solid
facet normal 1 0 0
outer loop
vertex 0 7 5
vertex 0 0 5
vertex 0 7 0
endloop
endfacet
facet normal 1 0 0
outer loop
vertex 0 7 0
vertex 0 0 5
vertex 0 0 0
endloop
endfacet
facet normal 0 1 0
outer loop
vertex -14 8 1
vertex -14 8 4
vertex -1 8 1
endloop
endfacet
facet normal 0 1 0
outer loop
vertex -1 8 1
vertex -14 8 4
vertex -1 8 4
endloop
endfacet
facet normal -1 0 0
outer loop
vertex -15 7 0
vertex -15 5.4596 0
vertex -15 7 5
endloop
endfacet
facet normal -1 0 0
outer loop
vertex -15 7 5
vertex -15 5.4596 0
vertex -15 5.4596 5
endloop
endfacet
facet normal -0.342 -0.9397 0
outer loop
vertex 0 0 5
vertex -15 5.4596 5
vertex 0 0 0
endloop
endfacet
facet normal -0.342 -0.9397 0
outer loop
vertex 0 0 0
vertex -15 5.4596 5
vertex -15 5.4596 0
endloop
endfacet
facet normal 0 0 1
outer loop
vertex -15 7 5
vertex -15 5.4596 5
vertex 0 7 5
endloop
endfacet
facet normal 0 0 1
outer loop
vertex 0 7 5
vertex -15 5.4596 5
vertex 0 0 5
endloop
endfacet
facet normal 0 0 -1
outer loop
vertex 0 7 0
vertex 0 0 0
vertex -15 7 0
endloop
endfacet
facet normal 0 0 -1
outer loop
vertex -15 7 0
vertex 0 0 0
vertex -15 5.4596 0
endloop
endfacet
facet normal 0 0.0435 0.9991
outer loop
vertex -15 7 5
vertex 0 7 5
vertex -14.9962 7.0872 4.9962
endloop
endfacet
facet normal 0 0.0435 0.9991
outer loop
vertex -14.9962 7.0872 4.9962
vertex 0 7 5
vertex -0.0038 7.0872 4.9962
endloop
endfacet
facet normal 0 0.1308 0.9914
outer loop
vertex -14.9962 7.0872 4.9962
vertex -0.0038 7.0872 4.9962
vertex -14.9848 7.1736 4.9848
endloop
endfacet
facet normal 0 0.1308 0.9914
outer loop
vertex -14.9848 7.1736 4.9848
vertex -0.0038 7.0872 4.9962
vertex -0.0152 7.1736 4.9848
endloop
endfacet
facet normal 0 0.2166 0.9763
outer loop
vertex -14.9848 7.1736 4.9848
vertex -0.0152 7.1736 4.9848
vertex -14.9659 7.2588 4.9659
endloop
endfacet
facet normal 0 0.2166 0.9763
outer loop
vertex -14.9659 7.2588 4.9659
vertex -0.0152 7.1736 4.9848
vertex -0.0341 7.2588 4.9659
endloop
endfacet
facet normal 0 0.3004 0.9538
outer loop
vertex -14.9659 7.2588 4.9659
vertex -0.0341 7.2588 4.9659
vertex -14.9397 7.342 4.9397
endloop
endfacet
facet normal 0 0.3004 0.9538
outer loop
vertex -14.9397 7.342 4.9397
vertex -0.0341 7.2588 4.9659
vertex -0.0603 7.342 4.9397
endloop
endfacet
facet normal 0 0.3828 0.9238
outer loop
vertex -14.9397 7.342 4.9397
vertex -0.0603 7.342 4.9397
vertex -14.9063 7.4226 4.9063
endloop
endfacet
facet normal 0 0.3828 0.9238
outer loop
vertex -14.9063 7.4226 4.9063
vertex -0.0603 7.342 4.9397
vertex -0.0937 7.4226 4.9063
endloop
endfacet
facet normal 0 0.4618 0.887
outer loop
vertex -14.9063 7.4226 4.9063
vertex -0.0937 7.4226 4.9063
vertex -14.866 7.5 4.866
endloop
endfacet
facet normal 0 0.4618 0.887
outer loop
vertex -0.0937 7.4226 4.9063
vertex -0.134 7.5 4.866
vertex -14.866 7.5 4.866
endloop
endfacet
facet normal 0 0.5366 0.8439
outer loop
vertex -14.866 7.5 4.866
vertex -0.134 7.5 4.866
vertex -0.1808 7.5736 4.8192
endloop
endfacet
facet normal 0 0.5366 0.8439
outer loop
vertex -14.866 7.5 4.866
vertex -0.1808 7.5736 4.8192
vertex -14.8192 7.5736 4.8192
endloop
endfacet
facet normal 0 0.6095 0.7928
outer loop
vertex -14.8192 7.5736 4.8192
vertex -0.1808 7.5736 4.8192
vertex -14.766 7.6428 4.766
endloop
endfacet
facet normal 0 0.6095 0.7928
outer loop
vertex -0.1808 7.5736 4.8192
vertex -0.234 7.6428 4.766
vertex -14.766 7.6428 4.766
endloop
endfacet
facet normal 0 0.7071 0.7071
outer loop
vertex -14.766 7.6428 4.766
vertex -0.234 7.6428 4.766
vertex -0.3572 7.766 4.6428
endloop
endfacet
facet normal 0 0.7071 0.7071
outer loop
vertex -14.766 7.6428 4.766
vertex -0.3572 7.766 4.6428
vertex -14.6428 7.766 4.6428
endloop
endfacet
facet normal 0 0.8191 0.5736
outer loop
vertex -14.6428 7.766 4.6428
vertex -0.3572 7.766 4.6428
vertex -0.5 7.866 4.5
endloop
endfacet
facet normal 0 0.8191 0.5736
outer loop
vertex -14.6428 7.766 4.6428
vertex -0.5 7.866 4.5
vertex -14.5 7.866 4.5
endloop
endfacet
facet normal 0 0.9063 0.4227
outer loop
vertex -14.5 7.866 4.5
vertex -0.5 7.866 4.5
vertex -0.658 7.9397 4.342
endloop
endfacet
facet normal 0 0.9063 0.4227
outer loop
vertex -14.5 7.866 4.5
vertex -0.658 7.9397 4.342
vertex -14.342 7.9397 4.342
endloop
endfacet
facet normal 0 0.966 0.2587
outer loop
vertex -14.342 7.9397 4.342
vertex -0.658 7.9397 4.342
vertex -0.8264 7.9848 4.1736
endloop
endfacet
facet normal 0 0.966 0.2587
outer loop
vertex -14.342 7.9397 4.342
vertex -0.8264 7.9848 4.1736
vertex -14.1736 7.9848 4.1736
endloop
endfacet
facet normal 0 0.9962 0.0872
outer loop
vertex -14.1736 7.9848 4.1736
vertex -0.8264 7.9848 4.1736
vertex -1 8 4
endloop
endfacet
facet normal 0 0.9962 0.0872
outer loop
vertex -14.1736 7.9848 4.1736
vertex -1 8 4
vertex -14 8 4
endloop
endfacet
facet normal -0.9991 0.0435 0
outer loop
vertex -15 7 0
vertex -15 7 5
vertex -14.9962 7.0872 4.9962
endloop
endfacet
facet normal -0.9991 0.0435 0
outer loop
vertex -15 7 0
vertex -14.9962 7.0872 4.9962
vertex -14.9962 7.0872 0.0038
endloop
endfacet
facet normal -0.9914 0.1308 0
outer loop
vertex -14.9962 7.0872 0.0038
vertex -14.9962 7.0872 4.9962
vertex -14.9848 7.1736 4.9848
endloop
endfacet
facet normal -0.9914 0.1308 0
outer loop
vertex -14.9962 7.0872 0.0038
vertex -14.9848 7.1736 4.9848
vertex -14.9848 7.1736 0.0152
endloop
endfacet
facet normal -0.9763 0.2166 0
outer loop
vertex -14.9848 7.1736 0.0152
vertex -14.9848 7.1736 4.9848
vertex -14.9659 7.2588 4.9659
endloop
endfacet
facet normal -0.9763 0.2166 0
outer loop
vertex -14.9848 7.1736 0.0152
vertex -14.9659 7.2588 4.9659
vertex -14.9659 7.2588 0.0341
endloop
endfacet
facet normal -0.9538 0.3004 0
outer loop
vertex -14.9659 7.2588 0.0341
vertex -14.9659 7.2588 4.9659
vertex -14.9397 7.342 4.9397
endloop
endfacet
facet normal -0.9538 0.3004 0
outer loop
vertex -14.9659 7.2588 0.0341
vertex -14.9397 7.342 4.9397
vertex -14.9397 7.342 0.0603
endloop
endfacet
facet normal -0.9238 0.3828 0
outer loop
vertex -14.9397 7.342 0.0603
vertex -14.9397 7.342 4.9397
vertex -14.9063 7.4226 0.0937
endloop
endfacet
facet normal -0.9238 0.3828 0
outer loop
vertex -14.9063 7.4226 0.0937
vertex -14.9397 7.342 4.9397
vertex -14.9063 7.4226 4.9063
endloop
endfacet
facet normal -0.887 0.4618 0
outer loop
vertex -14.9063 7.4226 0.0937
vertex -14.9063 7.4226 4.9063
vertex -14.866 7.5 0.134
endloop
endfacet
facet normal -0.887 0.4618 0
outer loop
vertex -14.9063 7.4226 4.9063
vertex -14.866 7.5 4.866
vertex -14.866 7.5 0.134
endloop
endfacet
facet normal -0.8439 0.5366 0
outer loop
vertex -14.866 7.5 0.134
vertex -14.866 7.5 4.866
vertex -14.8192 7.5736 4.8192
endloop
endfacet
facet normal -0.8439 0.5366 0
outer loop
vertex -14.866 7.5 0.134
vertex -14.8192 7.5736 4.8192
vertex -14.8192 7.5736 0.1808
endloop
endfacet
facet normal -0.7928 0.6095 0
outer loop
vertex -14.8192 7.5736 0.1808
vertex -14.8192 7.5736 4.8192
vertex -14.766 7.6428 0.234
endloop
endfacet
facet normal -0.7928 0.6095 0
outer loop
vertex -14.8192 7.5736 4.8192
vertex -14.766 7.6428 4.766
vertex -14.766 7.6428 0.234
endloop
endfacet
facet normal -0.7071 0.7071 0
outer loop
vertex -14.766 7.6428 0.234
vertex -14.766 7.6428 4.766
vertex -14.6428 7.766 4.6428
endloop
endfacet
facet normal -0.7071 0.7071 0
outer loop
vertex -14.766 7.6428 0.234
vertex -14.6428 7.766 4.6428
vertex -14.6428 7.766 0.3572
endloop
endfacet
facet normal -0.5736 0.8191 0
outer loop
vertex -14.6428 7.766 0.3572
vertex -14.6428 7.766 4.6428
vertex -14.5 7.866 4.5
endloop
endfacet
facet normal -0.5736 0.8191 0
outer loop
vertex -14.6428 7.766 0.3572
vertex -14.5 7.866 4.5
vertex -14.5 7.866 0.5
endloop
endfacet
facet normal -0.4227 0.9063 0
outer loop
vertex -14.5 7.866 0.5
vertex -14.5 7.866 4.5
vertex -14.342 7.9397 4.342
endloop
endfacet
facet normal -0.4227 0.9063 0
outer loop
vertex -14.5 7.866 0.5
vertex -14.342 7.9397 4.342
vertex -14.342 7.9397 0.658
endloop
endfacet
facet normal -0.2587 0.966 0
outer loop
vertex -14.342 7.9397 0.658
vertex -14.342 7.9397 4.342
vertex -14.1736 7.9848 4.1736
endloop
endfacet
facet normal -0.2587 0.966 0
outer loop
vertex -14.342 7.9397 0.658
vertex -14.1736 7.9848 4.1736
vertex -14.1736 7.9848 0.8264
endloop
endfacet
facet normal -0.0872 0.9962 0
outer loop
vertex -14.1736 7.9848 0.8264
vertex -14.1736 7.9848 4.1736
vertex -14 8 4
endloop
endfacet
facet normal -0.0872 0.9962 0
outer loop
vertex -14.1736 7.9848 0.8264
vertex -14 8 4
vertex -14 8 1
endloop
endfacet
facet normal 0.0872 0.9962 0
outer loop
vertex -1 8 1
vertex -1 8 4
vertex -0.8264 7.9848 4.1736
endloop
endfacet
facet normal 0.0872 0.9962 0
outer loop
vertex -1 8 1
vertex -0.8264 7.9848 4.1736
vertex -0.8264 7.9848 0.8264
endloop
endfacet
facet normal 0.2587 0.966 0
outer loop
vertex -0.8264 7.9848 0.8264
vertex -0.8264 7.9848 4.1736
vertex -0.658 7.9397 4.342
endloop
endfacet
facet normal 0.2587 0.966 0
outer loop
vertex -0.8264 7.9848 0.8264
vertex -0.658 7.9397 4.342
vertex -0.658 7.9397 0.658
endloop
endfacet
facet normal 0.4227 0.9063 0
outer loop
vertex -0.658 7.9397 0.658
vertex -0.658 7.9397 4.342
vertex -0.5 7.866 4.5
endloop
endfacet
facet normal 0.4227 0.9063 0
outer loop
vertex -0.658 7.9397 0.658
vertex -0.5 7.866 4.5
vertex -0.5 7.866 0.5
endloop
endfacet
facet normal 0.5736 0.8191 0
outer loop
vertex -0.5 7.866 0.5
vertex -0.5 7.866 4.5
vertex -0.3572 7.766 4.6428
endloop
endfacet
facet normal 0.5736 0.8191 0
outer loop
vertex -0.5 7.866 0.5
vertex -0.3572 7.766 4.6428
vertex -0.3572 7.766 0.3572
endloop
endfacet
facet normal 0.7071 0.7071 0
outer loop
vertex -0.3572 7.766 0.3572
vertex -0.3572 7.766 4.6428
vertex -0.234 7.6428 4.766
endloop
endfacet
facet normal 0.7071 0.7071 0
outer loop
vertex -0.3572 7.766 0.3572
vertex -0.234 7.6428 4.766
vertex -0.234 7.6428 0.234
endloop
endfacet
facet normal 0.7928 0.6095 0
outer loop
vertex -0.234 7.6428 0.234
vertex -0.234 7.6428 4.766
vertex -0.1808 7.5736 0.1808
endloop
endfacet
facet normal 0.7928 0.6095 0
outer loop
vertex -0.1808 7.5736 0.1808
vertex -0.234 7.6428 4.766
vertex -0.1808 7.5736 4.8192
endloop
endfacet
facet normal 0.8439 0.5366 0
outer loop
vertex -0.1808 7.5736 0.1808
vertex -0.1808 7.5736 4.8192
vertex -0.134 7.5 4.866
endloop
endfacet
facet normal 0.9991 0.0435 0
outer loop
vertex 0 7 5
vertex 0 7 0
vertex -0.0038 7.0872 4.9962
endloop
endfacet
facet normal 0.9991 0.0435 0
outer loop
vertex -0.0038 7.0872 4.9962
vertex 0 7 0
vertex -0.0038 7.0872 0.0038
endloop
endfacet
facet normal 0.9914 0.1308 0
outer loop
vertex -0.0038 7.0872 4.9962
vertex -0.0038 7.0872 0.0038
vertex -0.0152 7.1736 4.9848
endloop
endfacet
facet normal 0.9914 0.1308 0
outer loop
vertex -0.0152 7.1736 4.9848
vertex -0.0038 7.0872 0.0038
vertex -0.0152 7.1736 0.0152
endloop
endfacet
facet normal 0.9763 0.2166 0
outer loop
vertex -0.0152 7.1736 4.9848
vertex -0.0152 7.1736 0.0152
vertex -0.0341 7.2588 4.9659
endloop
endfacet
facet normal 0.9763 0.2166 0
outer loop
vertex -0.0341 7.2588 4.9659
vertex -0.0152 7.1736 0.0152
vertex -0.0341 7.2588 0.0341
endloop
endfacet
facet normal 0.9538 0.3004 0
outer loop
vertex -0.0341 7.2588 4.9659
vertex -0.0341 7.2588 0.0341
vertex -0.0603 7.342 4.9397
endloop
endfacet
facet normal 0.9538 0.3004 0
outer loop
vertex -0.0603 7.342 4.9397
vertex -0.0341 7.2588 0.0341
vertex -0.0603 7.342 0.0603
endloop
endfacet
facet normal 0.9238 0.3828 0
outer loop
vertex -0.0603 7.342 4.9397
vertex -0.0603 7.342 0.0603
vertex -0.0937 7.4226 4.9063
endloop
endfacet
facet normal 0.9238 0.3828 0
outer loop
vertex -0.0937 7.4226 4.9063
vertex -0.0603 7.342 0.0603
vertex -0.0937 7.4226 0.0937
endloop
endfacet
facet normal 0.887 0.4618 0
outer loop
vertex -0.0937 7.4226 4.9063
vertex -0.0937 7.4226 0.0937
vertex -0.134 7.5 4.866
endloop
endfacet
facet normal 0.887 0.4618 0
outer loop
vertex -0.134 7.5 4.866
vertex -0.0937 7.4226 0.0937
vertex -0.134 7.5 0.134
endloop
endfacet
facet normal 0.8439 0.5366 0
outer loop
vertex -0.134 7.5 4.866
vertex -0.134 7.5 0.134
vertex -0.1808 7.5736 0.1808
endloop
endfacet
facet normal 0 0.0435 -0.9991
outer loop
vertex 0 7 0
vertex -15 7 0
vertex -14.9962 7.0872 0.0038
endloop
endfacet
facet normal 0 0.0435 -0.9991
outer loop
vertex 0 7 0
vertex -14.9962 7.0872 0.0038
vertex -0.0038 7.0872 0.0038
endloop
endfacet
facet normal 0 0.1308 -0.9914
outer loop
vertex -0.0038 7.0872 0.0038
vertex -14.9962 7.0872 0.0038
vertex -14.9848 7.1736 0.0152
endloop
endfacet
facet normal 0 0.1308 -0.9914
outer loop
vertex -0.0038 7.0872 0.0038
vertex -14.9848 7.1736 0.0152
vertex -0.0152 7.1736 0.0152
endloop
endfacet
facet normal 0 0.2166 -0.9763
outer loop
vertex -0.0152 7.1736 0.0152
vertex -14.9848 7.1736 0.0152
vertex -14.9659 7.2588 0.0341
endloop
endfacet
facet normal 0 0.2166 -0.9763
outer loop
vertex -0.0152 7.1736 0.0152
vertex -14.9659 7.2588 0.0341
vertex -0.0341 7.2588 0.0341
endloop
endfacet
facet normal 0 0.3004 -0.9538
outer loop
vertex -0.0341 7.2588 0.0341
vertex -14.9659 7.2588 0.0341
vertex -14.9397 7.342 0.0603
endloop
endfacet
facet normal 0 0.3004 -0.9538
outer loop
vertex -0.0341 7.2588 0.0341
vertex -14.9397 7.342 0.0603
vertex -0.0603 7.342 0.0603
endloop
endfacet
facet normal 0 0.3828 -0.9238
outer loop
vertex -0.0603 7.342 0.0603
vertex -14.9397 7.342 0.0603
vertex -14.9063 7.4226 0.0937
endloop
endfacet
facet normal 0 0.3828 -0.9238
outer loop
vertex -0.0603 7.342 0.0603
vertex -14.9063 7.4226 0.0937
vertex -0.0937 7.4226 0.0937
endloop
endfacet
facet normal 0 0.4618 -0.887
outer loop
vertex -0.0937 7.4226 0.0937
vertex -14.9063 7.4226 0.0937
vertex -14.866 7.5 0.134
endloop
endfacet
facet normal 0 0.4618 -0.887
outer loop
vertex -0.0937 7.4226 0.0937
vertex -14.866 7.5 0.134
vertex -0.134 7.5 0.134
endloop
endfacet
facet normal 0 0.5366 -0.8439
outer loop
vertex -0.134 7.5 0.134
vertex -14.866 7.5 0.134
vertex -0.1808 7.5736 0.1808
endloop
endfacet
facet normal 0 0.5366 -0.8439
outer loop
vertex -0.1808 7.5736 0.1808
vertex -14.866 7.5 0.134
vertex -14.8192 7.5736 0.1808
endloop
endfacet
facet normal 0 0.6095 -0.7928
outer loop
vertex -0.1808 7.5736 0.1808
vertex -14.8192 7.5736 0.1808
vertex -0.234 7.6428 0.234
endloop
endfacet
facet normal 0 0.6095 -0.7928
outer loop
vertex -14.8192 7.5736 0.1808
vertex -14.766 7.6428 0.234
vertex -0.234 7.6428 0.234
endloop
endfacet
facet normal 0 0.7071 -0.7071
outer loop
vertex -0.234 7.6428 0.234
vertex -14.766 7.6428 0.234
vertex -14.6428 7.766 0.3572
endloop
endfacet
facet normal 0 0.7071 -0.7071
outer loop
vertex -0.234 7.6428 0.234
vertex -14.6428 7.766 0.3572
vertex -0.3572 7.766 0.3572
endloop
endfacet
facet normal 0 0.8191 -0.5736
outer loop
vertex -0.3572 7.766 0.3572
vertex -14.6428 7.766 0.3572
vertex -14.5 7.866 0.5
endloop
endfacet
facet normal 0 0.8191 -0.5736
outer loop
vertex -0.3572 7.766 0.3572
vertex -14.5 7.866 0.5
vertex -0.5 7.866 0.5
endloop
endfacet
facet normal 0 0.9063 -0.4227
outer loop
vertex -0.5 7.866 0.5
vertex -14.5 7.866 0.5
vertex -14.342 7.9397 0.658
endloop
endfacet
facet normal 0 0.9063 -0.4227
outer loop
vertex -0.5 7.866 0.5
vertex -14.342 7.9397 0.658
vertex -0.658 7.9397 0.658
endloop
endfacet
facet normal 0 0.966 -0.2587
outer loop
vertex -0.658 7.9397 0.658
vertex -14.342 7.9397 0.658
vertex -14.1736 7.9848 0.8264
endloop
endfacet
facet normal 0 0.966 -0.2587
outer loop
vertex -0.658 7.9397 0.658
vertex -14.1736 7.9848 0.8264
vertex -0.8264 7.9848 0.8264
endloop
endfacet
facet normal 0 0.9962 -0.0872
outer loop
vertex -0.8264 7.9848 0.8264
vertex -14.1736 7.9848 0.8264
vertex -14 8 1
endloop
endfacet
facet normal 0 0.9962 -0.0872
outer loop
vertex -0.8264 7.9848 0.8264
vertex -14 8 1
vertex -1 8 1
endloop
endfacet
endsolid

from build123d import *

# Parameters (mm, degrees)
SALIENTE_EXTRUIR1_DEPTH = 5
REDONDEO1_R             = 1


with BuildPart() as part:
    # Croquis1 → Saliente-Extruir1 (new body)
    with BuildSketch(Plane.XY):
        Polygon((0, 8), (0, 0), (-15, 5.459553514), (-15, 8), align=None)
    extrude(amount=SALIENTE_EXTRUIR1_DEPTH)

    # Redondeo1
    redondeo1_edges = [part.edges().sort_by_distance(p)[0] for p in [
        (-7.5, 8, 0),
        (-15, 8, 2.5),
        (0, 8, 2.5),
        (-7.5, 8, 5),
    ]]
    fillet(redondeo1_edges, radius=REDONDEO1_R)


solid = part.part
